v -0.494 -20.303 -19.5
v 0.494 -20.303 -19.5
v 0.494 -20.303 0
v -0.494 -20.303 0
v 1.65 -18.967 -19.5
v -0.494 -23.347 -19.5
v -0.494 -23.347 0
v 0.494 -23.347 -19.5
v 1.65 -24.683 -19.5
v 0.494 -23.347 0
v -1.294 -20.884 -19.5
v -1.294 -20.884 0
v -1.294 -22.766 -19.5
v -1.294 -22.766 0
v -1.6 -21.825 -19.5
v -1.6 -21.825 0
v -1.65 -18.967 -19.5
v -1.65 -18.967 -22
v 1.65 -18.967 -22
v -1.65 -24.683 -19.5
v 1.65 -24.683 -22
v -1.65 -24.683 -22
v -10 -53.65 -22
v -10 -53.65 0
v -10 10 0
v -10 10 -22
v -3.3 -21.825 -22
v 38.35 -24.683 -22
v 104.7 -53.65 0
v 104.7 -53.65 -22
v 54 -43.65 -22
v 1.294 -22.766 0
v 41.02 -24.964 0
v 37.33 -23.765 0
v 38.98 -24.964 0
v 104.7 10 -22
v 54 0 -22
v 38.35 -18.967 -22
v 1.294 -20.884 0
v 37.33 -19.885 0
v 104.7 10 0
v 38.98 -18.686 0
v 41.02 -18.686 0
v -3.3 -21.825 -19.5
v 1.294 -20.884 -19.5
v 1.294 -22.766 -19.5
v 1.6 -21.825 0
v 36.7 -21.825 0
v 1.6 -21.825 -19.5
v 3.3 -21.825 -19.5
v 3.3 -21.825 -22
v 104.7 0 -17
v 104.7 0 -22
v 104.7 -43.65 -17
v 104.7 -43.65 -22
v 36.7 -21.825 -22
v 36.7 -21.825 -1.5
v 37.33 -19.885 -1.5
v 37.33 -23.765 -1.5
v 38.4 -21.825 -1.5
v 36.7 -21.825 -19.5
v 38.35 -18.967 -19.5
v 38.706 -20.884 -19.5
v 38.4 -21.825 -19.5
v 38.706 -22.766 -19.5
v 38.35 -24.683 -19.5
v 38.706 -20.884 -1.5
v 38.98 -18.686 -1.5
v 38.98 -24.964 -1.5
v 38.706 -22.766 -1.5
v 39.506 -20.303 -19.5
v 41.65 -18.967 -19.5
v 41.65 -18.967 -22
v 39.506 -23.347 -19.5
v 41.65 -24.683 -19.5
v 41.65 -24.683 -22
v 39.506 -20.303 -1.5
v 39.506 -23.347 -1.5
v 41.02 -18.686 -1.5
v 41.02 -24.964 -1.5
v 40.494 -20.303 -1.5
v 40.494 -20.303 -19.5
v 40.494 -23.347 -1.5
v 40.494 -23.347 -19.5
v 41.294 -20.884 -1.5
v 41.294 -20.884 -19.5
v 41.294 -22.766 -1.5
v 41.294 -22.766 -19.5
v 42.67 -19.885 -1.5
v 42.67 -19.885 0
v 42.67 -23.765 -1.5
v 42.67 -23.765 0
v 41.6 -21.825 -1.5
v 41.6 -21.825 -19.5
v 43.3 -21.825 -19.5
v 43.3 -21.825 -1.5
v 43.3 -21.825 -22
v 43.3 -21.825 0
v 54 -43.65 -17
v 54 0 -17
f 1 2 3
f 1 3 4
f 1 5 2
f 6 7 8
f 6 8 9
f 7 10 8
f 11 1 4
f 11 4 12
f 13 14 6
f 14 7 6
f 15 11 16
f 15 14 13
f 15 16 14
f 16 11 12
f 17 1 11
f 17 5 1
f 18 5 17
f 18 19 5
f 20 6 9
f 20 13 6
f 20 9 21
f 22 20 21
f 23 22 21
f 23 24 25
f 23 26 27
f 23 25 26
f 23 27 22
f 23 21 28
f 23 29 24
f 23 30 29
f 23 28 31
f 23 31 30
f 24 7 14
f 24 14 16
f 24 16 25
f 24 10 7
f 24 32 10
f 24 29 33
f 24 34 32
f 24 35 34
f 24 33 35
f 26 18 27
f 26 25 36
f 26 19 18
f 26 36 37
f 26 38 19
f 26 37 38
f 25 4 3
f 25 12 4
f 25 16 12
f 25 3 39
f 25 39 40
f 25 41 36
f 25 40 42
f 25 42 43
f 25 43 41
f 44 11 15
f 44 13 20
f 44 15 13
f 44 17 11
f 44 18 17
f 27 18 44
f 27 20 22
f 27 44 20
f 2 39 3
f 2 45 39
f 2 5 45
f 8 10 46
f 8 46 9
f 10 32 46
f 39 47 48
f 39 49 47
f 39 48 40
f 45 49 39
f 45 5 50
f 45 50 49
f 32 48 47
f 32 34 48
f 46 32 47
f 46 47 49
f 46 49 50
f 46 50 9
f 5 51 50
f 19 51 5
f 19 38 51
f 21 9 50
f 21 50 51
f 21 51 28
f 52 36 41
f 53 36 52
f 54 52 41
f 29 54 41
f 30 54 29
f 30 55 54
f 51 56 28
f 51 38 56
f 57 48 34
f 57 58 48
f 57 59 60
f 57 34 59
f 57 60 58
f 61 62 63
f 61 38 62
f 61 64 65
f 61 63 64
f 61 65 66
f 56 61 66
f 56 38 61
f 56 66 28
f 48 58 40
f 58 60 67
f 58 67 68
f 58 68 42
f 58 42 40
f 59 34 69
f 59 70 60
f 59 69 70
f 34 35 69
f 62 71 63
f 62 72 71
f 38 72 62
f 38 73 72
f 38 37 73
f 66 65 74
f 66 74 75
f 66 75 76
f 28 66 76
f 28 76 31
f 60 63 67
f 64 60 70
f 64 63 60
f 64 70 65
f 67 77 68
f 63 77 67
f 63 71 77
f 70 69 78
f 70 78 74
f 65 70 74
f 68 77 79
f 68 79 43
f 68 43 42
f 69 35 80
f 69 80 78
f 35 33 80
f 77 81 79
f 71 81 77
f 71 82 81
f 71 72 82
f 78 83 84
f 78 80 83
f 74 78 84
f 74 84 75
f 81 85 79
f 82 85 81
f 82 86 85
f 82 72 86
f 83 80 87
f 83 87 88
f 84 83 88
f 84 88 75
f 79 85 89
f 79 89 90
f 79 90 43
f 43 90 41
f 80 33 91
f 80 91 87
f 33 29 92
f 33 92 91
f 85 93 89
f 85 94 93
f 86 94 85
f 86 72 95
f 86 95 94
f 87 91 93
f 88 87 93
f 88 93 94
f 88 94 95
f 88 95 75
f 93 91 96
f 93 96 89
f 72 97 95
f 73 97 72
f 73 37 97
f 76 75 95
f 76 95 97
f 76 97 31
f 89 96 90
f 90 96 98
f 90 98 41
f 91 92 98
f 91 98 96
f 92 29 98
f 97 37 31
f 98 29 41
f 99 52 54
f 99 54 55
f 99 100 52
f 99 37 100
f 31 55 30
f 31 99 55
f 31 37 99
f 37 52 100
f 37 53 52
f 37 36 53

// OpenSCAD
// file: ../888_1019.scad
include <../parameters.scad>
draft = true;

accumulator_spacer_thickness = 22;  // 22mm napocitano na pouziti M3x30 sroubou
accumulator_spacer_sink = sink_of_accumulator;
accumulator_spacer_move = 40; // posuv smerem dopredu
accumulator_spacer_wall = 10;
accumulator_spacer_wall_end = 25;
accumulator_spacer_width = height_of_accumulator + 2*accumulator_spacer_wall;
accumulator_spacer_length = width_of_accumulator + accumulator_spacer_move + 2*accumulator_spacer_wall_end;

accumulator_threads_distance = (width_of_accumulator/2 + accumulator_holder_width/2 + accumulator_holder_thickness/2)*2;


module 888_1019(draft){
rotate([0, 180, 180])
    difference(){
        translate([-accumulator_spacer_wall, -accumulator_spacer_wall, 0])
            cube([accumulator_spacer_length, accumulator_spacer_width, accumulator_spacer_thickness]);



      //akumulátor
      translate([accumulator_spacer_move + accumulator_threads_distance/2 - width_of_accumulator/2, 0, accumulator_spacer_thickness-accumulator_spacer_sink])
        cube([width_of_accumulator, height_of_accumulator, depth_of_accumulator]);


      //for(x=[0, accumulator_threads_distance, accumulator_spacer_move, accumulator_spacer_move + accumulator_threads_distance]){
      #translate([0, 0, 0])
          union (){

            //šrouby pro připevnění akumulátorů
            translate([0, height_of_accumulator/2, 0])
                cylinder(h = 100, r = M3_screw_diameter/2, $fn = draft ? 10 : 20, center = true);

             // díry pro matky pro sroub drzici obruce pres baterie..
             translate([0, height_of_accumulator/2, accumulator_spacer_thickness])
                cylinder(h = 5, d = M3_nut_diameter, $fn = 6, center = true);
          }

    translate([accumulator_threads_distance, 0, 0])
        #union (){

            //šrouby pro připevnění akumulátorů
            translate([0, height_of_accumulator/2, 0])
                cylinder(h = 100, r = M3_screw_diameter/2, $fn = draft ? 10 : 20, center = true);

              // díry pro matky pro sroub drzici obruce pres baterie..
              translate([0, height_of_accumulator/2, accumulator_spacer_thickness - accumulator_spacer_sink-1])
                  cylinder(h = 5, d = M3_nut_diameter, $fn = 6, center = true);
          }


          #translate([accumulator_spacer_move, 0, 0])
              union (){

                //šrouby pro připevnění akumulátorů
                  translate([0, height_of_accumulator/2, 0])
                      cylinder(h = 100, r = M3_screw_diameter/2, $fn = draft ? 10 : 20, center = true);

                  //díry pro zapuštění hlaviček šroubů
                  translate([0, height_of_accumulator/2, 0])
                      cylinder(h = M3_screw_head_height, d = M3_nut_diameter, $fn = draft ? 10 : 20, center = true);

                  translate([0, height_of_accumulator/2, 0])
                      cylinder(h = M3_screw_head_height, d = M3_nut_diameter, $fn = draft ? 10 : 20, center = true);

              // díry pro matky pro sroub drzici obruce pres baterie..
                  translate([0, height_of_accumulator/2, accumulator_spacer_thickness])
                      cylinder(h = 5, d = M3_nut_diameter, $fn = 6, center = true);
              }

          #translate([accumulator_spacer_move + accumulator_threads_distance, 0, 0])
              union (){

                //šrouby pro připevnění akumulátorů
                  translate([0, height_of_accumulator/2, 0])
                      cylinder(h = 100, r = M3_screw_diameter/2, $fn = draft ? 10 : 20, center = true);


                  //díry pro zapuštění hlaviček šroubů
                  translate([0, height_of_accumulator/2, 0])
                      cylinder(h = M3_screw_head_height, d = M3_nut_diameter, $fn = draft ? 10 : 20, center = true);

                  translate([0, height_of_accumulator/2, 0])
                      cylinder(h = M3_screw_head_height, d = M3_nut_diameter, $fn = draft ? 10 : 20, center = true);

              // díry pro matky pro sroub drzici obruce pres baterie..
                  translate([0, height_of_accumulator/2, accumulator_spacer_thickness])
                      cylinder(h = 5, d = M3_nut_diameter, $fn = 6, center = true);
              }




    }
}


888_1019(draft);
// main file
include <../../parameters.scad>
use <../888_1019.scad>

draft = false;

difference(){
    888_1019(1, draft);
  #translate([(width_of_accumulator+40+40)/2, -200, -200])
    cube(500);
}
